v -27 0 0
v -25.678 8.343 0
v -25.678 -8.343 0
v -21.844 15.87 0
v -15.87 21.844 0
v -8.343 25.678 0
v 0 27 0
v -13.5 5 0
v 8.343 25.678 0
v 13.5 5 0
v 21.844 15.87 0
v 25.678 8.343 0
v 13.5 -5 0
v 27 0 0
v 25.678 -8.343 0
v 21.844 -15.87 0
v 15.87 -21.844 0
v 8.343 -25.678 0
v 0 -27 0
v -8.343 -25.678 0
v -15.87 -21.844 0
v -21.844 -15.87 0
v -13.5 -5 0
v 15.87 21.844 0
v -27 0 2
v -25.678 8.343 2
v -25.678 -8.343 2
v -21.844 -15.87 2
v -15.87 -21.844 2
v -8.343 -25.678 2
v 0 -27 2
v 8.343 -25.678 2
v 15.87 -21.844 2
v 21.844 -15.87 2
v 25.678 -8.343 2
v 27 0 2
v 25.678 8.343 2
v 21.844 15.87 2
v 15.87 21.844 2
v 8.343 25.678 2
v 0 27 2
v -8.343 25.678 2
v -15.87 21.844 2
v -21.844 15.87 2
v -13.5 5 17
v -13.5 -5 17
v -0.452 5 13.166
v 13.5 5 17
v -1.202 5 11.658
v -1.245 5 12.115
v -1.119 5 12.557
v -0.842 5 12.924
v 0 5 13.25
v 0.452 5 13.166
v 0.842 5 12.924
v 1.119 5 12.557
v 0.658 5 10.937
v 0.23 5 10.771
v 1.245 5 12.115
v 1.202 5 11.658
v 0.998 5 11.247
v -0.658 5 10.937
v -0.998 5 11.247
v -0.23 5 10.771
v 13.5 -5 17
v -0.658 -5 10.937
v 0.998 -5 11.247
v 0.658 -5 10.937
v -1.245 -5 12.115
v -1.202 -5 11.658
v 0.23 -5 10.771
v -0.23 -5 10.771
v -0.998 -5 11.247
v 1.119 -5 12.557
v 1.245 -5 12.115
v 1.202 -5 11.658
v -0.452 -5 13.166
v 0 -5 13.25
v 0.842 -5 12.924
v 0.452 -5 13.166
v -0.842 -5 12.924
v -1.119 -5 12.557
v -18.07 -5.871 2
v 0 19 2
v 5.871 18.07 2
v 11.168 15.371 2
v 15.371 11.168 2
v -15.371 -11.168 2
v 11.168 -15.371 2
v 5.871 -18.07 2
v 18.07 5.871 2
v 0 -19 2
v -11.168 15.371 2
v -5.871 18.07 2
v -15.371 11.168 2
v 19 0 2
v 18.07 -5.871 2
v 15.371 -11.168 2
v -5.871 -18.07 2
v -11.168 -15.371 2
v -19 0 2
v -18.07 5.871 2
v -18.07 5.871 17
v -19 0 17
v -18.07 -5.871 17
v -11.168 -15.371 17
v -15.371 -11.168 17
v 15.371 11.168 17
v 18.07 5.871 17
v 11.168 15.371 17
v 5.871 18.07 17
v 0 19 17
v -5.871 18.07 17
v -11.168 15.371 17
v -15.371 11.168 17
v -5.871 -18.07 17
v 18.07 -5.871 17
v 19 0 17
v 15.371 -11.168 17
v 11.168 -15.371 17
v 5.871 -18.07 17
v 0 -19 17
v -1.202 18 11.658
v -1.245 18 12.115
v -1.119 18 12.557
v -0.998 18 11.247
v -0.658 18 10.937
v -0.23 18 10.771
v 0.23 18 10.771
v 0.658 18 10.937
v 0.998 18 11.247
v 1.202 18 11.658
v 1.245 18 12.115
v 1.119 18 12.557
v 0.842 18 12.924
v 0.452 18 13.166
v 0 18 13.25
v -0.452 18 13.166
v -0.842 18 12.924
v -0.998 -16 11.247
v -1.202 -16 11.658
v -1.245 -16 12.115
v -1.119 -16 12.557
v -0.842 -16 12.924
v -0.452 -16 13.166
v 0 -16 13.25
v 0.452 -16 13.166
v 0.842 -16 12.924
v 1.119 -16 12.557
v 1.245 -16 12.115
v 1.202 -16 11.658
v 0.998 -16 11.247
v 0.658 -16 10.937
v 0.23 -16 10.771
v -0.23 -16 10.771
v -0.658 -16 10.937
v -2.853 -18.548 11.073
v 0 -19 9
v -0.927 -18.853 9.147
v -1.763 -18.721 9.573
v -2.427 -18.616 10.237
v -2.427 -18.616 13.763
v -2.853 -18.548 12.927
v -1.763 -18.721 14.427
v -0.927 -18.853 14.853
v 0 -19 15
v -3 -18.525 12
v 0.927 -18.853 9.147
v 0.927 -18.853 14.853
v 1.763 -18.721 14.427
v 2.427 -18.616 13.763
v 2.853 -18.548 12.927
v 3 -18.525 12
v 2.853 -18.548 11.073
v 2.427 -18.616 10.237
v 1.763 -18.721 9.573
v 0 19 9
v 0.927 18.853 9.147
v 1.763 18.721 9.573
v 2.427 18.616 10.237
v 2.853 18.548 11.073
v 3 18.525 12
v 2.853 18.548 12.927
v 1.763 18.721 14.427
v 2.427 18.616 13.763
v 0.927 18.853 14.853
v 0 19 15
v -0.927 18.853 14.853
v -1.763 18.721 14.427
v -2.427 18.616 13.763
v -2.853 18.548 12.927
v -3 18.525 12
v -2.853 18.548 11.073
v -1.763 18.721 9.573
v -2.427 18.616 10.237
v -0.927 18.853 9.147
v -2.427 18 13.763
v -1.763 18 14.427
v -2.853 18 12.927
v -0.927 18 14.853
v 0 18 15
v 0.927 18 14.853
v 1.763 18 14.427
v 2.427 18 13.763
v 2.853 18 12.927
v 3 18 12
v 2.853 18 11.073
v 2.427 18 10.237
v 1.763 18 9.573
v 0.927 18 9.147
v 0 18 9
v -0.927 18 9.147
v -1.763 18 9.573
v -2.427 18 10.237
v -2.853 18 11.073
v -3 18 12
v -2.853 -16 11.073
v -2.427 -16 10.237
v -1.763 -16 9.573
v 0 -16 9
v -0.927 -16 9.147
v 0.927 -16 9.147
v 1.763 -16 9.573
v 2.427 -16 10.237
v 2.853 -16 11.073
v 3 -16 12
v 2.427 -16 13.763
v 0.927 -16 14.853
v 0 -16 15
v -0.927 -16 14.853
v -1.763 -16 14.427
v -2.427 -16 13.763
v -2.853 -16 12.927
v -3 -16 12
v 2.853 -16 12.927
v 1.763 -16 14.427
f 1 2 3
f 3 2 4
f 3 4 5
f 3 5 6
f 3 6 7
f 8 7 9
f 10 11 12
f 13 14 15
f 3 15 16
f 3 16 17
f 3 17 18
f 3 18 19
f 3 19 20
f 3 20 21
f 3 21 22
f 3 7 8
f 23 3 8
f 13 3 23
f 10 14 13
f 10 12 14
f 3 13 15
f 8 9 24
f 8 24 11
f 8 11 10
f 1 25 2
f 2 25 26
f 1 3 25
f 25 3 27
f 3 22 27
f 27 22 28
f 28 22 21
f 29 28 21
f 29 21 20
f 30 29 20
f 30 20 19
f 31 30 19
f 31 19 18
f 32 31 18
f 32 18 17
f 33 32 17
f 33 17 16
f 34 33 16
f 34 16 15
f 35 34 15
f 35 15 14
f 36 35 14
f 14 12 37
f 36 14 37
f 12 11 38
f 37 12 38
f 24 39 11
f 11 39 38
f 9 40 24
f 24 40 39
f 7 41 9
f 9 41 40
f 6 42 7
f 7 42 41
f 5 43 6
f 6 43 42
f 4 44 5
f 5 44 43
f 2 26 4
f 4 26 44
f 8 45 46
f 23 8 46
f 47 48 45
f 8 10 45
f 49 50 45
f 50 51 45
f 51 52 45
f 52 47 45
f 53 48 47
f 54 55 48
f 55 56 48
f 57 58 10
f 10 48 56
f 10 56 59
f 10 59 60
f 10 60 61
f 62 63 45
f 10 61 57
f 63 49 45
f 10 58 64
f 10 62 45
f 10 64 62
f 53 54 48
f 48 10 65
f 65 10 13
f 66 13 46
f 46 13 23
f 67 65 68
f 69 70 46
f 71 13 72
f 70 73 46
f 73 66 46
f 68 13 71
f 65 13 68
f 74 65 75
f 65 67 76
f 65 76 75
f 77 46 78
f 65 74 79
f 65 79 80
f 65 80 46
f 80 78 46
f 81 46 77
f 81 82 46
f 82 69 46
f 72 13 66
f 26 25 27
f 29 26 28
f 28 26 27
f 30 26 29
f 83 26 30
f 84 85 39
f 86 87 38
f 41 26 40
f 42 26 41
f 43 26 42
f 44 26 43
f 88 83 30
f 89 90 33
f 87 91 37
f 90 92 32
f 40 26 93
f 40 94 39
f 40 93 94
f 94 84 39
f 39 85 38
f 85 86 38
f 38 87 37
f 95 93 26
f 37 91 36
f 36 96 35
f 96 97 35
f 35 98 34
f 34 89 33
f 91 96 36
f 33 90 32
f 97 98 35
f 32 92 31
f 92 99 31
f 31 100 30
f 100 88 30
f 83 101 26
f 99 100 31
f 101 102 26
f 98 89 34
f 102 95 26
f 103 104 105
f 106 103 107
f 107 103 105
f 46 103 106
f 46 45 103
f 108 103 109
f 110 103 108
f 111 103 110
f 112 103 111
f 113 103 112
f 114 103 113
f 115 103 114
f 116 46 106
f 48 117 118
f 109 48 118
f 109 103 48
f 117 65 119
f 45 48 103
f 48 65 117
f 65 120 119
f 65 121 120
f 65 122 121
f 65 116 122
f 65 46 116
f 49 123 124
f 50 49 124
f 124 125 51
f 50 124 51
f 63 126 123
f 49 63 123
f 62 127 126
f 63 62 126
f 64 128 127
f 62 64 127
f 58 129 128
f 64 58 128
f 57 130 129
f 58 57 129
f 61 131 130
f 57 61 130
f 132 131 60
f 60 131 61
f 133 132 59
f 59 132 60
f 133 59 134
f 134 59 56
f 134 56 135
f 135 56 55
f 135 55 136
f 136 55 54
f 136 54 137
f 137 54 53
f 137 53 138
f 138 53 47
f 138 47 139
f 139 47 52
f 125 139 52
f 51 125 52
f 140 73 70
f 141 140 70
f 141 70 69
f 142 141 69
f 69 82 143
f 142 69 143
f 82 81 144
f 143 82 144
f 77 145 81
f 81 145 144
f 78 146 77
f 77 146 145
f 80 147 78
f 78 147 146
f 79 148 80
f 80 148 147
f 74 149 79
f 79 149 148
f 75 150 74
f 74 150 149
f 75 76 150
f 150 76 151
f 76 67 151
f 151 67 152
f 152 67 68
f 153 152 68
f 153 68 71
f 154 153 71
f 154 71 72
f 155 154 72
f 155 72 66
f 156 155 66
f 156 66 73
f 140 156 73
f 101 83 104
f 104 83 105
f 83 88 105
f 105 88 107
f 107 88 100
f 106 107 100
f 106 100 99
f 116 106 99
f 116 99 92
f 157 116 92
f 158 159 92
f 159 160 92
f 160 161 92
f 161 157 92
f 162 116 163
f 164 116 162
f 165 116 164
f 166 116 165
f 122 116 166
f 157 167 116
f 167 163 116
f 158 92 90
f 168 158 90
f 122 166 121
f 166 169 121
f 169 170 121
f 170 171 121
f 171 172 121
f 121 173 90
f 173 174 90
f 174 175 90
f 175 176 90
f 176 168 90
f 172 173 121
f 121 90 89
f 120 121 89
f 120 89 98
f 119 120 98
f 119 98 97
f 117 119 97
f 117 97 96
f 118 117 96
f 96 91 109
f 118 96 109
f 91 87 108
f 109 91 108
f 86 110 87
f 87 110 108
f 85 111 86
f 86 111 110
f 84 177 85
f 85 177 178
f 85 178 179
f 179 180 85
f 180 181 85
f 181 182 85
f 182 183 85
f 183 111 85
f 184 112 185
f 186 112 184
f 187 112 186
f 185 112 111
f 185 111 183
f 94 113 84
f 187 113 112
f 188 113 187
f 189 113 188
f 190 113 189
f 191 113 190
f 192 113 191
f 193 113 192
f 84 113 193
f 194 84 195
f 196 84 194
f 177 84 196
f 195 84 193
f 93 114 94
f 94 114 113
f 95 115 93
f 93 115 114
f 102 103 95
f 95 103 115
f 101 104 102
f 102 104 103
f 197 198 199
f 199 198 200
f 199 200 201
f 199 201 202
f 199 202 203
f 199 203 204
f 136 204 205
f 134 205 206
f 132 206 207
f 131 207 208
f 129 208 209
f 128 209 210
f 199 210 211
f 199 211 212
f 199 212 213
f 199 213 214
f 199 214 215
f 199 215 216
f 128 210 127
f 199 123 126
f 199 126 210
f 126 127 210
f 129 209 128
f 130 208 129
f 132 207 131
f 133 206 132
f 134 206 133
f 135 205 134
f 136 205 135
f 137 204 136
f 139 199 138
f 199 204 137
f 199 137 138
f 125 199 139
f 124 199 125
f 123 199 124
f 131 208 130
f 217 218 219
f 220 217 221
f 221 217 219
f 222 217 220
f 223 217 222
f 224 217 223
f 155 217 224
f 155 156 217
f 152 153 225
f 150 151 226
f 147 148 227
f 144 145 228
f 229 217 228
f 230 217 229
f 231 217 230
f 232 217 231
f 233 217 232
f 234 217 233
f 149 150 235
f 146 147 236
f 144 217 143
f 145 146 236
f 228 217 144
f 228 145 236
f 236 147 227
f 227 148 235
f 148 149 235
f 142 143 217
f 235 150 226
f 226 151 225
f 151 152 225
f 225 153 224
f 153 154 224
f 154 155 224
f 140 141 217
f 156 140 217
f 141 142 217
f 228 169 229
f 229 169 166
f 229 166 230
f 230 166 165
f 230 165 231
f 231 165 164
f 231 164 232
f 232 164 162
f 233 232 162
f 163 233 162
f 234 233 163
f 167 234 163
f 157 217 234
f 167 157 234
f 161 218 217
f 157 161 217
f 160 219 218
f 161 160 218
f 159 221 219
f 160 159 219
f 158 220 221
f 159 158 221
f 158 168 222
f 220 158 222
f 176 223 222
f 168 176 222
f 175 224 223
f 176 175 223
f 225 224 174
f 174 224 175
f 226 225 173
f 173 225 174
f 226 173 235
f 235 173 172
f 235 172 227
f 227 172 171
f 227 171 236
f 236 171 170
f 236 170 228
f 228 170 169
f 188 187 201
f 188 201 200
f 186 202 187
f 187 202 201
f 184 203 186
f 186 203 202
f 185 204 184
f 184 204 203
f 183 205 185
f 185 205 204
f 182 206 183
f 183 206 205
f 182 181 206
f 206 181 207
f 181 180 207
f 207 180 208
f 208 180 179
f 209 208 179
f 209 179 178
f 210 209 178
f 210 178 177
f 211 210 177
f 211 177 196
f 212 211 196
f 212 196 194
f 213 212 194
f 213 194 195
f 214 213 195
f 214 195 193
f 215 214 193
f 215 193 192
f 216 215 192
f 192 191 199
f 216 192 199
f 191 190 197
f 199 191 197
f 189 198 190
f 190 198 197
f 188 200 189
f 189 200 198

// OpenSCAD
$fn=20;

spoolID = 38; // inner diameter of spool hole
spoolT = 15;
spoolFlange = 8; // 
spoolFlangeT = 2;

barW = 27;
barD = 10;

screwD = 2.5;


difference() {
  union() {
    cylinder(r=(spoolID/2)+spoolFlange, h=spoolFlangeT);

    cylinder(r=spoolID/2, h=spoolFlangeT+spoolT);
  }



  translate([0,0,-0.5])
    cube([barW, barD, 10*spoolT+1], center=true);



  # translate([0,spoolID/2+1,spoolFlangeT+spoolT-5]) 
  rotate([90,-90,0])  {
  union() {
  translate([0,0,-1]) cylinder(r=6/2, h=3);
  translate([0,0,-1]) cylinder(r=screwD/2, h=spoolID+3, $fn=17);
  translate([0,0,spoolID-2]) cylinder(r=6/2, h=3);
}
}

}

  // # translate([8, 26.5, 13.25]-[27,27,0]) cube ([1,1,100]);
